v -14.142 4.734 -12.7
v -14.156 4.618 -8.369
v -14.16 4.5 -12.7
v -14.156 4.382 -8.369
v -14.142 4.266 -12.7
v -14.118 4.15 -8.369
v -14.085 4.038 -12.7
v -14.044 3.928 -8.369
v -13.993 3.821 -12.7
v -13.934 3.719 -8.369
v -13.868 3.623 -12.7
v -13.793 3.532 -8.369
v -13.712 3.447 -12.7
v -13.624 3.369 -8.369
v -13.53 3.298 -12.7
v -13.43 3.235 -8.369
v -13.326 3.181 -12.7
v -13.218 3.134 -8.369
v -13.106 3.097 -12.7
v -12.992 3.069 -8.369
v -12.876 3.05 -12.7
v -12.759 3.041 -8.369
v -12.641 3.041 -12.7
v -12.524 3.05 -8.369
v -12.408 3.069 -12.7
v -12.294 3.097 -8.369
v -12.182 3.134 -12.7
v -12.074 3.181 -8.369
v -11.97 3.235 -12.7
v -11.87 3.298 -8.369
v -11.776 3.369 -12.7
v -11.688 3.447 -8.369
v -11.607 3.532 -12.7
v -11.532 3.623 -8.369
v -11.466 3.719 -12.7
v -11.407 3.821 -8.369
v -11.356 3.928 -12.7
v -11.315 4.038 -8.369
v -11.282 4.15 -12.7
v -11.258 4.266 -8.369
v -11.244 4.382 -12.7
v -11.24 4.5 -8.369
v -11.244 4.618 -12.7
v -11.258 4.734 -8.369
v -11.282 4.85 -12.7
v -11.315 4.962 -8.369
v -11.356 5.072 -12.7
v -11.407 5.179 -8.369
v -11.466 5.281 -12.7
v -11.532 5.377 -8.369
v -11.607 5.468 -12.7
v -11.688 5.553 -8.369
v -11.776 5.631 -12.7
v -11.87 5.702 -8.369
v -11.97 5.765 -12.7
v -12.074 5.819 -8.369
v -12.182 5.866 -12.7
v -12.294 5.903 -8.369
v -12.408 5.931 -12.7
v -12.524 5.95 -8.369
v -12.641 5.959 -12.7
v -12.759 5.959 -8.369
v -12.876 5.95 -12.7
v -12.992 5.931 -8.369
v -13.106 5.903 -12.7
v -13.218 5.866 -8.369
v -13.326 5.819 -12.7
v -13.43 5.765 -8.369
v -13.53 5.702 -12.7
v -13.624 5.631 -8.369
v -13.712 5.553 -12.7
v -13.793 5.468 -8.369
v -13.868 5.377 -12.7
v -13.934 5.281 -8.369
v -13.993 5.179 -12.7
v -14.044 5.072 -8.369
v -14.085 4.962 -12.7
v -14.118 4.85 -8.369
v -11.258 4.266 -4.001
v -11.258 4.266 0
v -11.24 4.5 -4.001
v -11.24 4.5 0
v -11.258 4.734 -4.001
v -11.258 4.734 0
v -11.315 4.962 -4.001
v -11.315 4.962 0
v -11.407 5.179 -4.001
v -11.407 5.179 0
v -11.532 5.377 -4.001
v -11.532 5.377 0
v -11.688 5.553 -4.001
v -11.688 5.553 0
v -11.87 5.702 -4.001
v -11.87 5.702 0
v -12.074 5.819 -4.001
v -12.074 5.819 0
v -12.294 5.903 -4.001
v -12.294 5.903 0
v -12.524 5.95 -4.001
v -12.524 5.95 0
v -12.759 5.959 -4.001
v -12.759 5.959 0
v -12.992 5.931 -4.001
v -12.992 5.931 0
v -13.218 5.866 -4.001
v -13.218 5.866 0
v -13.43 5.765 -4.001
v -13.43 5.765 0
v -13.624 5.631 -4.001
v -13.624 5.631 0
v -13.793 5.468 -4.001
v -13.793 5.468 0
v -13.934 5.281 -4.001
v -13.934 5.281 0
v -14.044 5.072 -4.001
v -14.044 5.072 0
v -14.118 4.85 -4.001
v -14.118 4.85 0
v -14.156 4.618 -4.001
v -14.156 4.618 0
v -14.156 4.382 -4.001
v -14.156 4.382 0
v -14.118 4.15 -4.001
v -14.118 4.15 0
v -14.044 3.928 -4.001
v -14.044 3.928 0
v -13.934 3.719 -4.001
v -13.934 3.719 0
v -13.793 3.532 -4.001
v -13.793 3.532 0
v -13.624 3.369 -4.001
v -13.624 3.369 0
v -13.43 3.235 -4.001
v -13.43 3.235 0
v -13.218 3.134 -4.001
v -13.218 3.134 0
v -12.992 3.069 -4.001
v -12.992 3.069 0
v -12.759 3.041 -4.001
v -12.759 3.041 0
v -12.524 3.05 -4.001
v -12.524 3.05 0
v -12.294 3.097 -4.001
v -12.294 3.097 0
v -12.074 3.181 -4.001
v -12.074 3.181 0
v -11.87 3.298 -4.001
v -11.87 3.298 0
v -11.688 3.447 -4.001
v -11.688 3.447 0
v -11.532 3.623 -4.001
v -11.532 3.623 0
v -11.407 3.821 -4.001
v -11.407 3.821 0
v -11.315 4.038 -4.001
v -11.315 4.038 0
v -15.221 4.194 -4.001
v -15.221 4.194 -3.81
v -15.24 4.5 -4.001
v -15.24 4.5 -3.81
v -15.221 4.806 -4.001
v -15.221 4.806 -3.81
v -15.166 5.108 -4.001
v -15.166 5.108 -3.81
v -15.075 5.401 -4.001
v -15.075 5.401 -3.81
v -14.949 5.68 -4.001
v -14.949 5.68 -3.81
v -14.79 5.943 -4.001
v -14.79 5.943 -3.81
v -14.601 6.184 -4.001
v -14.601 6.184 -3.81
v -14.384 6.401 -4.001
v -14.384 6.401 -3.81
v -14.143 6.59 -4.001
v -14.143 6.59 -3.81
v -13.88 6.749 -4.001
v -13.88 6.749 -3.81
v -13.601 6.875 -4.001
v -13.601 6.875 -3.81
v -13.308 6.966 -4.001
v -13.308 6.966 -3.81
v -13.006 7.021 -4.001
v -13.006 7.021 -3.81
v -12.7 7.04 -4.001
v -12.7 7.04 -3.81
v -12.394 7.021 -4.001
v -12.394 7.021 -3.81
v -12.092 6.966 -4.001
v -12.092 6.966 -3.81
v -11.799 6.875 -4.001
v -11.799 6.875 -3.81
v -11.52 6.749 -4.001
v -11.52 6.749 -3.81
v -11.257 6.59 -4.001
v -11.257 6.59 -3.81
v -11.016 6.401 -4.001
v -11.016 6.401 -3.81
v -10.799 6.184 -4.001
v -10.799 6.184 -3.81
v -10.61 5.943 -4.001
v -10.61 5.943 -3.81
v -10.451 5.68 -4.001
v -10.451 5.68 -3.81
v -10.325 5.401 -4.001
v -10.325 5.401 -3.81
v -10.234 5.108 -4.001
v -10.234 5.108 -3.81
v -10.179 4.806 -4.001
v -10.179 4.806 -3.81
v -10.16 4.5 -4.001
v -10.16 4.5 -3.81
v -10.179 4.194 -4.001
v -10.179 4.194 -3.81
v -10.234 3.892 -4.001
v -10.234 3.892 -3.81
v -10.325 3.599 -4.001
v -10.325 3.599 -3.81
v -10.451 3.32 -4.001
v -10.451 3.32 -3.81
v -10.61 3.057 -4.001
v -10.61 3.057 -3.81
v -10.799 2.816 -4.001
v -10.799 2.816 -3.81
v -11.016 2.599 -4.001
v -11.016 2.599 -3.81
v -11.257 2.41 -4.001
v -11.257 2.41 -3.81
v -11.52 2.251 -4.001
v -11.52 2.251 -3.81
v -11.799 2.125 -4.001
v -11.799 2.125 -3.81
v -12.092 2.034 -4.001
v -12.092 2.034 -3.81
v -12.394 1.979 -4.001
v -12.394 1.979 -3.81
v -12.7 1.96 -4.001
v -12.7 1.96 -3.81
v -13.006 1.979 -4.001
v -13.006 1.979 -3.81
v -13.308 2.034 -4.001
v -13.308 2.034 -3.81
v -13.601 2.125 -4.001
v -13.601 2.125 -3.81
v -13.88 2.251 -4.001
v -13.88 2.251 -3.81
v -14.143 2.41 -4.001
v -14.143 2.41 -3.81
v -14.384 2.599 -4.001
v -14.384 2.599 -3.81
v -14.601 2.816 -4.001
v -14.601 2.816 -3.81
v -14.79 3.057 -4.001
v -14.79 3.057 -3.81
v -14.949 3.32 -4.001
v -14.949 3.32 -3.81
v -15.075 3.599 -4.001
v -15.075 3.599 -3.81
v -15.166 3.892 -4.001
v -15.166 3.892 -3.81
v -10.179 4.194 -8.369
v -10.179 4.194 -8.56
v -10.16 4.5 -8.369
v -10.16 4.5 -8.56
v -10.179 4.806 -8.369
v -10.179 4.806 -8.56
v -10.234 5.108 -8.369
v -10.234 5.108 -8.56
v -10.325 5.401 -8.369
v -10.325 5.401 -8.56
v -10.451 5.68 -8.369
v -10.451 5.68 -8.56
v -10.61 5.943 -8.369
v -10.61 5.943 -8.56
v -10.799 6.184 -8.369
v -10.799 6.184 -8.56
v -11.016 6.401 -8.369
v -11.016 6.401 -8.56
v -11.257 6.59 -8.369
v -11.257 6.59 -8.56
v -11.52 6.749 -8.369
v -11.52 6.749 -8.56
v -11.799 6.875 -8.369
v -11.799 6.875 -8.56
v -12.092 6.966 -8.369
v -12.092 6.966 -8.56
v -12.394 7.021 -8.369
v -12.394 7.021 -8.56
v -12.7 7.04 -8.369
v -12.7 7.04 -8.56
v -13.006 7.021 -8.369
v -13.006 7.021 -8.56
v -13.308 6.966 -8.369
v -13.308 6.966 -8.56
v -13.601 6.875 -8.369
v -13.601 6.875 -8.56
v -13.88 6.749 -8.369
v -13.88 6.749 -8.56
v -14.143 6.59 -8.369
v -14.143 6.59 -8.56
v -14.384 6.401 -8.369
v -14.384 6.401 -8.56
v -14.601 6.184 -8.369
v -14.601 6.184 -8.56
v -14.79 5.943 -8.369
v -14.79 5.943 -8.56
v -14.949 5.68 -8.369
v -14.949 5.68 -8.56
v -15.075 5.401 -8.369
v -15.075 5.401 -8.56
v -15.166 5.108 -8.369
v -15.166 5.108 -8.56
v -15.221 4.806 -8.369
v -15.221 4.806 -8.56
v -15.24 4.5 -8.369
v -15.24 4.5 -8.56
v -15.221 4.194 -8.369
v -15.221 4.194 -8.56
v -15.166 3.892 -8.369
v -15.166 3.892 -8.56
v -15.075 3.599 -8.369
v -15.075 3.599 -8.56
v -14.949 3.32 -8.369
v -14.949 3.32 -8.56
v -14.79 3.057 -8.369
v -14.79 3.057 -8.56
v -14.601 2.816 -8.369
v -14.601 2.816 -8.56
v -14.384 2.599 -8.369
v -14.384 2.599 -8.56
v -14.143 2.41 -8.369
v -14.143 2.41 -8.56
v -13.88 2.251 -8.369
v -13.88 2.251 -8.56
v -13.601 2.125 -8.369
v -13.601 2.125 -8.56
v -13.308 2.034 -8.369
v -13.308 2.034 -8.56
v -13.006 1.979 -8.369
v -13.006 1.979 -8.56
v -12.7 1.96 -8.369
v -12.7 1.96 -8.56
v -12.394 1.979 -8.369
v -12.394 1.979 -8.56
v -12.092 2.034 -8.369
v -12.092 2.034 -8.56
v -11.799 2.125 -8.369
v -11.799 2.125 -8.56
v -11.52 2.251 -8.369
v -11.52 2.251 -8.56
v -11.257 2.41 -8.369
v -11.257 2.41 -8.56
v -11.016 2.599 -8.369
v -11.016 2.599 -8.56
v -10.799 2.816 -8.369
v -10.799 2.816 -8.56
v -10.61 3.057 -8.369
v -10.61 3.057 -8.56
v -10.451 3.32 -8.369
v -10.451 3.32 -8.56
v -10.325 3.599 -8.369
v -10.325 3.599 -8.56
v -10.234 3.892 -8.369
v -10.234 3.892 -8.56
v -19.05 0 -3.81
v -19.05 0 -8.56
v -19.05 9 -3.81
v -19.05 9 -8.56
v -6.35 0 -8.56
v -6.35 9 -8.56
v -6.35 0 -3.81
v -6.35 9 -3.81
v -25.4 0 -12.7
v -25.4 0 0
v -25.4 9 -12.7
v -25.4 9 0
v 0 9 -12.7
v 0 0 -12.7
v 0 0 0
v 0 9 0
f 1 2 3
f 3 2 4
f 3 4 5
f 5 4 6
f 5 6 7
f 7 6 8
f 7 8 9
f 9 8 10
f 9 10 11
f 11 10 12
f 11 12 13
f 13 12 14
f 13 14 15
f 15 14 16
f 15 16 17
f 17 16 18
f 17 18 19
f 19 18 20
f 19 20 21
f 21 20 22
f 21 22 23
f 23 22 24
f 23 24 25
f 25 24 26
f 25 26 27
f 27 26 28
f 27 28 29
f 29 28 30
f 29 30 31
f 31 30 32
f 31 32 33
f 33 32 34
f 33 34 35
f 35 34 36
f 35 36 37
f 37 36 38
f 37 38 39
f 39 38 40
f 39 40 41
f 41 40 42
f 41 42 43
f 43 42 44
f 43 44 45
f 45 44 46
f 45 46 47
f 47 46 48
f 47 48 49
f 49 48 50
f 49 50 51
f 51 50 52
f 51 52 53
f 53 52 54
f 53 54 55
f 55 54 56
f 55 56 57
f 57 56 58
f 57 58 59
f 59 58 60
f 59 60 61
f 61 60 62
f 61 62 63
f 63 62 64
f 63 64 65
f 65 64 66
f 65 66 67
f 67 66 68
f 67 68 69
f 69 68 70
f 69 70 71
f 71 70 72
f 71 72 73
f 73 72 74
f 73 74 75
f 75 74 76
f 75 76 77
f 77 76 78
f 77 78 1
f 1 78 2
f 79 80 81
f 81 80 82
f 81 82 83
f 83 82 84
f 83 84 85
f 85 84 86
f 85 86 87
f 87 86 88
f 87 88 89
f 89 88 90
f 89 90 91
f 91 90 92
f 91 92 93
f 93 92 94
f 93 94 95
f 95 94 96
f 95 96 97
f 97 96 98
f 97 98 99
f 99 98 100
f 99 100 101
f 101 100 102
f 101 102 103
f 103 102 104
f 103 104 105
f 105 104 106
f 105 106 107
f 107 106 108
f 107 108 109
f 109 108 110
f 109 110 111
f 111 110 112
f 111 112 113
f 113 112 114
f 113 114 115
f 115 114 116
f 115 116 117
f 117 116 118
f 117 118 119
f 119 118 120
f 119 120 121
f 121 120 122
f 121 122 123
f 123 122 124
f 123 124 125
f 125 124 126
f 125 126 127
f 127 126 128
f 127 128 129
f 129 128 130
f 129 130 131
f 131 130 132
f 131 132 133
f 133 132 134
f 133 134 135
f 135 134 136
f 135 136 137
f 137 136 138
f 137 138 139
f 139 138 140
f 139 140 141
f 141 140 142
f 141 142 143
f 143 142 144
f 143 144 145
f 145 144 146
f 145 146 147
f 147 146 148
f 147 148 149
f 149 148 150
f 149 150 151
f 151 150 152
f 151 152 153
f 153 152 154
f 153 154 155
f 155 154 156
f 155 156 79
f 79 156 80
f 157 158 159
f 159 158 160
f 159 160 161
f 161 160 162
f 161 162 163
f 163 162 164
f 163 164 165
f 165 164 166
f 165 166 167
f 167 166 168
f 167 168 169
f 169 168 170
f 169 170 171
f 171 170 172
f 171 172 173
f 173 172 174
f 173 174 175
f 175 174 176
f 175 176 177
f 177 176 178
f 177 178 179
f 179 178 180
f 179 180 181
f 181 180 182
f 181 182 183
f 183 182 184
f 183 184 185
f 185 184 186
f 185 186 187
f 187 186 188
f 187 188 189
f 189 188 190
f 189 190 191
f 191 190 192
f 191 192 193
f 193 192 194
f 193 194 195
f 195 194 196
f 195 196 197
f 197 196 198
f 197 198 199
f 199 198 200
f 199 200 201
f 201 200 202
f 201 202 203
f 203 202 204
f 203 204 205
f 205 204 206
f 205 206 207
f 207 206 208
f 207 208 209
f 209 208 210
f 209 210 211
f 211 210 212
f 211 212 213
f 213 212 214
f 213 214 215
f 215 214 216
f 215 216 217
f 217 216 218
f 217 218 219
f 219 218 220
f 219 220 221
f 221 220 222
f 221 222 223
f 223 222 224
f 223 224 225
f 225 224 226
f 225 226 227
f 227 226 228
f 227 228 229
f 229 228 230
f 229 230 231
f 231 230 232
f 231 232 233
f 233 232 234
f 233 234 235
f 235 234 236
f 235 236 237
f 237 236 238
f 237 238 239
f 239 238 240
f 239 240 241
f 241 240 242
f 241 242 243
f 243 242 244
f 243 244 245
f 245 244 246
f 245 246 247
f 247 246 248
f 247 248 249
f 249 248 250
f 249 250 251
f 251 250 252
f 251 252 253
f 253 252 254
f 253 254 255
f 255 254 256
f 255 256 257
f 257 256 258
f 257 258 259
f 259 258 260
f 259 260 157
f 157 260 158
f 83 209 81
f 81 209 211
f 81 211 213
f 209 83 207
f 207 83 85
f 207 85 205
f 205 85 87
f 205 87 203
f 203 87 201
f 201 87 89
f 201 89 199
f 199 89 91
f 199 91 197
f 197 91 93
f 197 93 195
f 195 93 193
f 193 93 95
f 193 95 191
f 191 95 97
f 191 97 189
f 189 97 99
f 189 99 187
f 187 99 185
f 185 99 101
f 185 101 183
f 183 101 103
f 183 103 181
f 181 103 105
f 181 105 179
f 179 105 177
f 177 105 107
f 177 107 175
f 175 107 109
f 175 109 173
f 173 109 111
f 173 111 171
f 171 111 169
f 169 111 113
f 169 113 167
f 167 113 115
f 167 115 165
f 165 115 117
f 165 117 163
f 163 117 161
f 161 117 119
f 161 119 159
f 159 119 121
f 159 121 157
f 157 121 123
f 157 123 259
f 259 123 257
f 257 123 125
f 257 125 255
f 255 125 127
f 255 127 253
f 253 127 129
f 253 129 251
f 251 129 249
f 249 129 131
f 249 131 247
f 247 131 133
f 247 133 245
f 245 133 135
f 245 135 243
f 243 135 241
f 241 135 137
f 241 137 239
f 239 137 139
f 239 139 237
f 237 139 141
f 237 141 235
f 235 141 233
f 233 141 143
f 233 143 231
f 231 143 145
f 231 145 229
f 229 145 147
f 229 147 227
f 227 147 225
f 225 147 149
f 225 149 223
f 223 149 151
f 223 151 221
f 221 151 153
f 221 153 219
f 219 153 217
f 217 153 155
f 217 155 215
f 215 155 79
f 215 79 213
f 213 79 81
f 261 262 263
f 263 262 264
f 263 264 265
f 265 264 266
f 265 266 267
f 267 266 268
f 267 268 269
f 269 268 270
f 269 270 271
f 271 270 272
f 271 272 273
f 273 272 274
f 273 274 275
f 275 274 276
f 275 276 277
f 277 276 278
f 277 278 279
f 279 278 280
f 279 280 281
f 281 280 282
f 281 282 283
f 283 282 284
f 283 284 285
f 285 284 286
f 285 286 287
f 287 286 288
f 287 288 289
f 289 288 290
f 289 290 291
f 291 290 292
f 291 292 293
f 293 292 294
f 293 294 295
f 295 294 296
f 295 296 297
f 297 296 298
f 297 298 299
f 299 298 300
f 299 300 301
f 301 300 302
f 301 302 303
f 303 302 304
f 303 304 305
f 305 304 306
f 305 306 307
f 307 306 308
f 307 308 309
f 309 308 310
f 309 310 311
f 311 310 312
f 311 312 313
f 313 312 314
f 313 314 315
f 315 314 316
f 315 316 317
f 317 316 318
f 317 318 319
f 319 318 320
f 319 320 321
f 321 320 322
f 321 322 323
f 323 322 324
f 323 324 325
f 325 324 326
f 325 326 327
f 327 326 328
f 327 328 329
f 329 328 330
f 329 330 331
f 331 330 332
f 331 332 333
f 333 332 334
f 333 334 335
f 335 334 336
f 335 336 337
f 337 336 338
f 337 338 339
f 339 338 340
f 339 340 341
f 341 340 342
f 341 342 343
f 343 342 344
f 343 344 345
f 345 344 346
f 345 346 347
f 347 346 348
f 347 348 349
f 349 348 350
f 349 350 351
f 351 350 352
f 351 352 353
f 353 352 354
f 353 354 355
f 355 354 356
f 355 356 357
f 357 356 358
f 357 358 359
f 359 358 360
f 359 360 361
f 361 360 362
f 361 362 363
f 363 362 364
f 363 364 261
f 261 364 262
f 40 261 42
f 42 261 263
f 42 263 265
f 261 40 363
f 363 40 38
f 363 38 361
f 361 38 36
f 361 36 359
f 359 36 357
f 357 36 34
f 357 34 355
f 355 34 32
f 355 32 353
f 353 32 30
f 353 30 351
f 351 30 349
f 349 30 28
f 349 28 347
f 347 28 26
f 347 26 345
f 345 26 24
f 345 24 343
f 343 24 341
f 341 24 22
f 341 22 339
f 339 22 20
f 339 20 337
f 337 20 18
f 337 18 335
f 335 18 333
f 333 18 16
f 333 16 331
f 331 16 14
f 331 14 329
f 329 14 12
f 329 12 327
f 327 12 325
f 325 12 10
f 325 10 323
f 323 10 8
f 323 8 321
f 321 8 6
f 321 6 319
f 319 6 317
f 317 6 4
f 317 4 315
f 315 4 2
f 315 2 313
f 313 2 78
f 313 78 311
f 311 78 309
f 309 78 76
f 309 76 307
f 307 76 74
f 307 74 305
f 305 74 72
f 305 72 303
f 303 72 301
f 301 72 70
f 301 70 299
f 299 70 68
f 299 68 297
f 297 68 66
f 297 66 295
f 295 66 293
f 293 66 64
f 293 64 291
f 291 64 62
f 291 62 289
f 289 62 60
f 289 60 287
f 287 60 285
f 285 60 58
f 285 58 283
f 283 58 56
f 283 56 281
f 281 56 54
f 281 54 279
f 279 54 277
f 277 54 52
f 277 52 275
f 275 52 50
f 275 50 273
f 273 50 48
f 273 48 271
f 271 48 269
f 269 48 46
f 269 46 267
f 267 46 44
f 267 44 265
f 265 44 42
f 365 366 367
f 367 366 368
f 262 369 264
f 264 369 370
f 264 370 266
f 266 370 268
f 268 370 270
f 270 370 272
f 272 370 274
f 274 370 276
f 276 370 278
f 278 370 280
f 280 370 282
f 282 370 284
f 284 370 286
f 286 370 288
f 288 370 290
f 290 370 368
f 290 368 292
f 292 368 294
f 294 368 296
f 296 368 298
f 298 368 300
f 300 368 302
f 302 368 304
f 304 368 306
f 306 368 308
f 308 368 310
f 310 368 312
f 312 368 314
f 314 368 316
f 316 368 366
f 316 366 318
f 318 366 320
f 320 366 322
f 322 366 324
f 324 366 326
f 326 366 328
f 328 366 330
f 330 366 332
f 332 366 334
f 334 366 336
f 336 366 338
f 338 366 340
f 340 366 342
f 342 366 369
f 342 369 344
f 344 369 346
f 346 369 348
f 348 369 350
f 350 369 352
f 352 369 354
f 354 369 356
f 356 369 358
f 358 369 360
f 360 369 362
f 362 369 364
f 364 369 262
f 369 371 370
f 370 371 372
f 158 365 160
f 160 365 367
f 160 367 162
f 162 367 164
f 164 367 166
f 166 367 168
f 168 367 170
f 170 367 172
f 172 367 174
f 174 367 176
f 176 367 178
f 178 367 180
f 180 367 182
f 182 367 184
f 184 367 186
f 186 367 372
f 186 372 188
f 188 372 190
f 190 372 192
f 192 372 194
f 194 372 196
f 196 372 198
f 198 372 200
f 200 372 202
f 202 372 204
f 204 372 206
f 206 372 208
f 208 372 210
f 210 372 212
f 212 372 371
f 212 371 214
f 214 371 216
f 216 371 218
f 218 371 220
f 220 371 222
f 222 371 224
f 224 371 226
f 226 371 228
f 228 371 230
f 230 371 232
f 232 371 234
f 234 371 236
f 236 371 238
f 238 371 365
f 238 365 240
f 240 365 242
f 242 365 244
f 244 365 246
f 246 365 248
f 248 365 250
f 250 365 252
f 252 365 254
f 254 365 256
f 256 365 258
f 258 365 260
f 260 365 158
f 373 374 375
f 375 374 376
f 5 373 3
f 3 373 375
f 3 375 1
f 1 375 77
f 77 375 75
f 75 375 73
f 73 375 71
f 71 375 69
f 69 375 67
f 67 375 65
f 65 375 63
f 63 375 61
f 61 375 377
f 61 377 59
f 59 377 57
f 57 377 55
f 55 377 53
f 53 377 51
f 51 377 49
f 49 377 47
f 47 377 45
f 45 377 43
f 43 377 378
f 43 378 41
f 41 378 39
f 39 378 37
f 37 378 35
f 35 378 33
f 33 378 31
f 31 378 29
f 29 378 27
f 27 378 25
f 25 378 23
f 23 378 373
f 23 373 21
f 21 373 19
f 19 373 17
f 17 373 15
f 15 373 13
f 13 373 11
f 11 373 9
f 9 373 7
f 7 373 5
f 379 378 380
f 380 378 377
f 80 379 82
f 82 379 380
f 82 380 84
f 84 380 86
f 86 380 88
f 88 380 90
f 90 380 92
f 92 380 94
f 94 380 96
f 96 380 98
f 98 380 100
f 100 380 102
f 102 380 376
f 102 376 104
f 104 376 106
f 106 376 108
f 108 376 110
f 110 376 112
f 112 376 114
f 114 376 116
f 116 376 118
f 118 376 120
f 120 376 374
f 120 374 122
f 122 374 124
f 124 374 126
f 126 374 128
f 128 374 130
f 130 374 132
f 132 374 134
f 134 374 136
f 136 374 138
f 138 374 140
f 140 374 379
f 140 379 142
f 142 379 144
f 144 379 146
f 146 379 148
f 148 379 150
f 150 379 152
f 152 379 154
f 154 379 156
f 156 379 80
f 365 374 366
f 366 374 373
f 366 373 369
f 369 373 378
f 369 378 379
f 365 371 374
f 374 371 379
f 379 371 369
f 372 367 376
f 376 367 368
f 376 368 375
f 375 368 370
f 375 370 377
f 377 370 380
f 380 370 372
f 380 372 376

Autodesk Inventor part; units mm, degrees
ref_plane "YZ Plane" through (0, 0, 0) normal (1, 0, 0) x (0, 1, 0)
ref_plane "XZ Plane" through (0, 0, 0) normal (0, 1, 0) x (-1, 0, 0)
ref_plane "XY Plane" through (0, 0, 0) normal (0, 0, 1) x (1, 0, 0)
sketch "Sketch1" plane through (0, 0, 0) normal (0, 1, 0) x (-1, 0, 0)
  line L0 (0, 0) -> (25.4, 0)
  line L1 (25.4, 0) -> (25.4, -12.7)
  line L2 (25.4, -12.7) -> (0, -12.7)
  line L3 (0, -12.7) -> (0, 0)
  line L4 (6.35, -3.81) -> (19.05, -3.81)
  line L5 (19.05, -3.81) -> (19.05, -8.5598)
  line L6 (19.05, -8.5598) -> (6.35, -8.5598)
  line L7 (6.35, -8.5598) -> (6.35, -3.81)
  dimension "d0" = 25.4
  dimension "d1" = 12.7
  dimension "d2" = 12.7
  dimension "d3" = 4.7498
  dimension "d5" = 6.35
  dimension "d6" = 3.81
extrude "Extrusion1" add sketch "Sketch1" along normal blind 9
sketch "Sketch2" plane through (-19.05, 0, -8.5598) normal (0, 0, 1) x (1, 0, 0)
  circle A0 centre (6.35, 4.5) radius 2.54
  line L0 (12.7, 0) -> (12.7, 9) projected
  point P0 (19.05, 0)
  dimension "d9" = 5.08
  dimension "d10" = 4.5
  dimension "d11" = 6.35
extrude "Extrusion2" add sketch "Sketch2" along normal blind 0.1905
sketch "Sketch3" plane through (-6.35, 0, -3.81) normal (0, 0, -1) x (-1, 0, 0)
  circle A0 centre (6.35, 4.5) radius 2.54
  line L0 (0, 0) -> (0, 9) projected
  point P0 (-6.35, 0)
  dimension "d14" = 5.08
  dimension "d15" = 4.5
  dimension "d16" = 6.35
extrude "Extrusion3" add sketch "Sketch3" along normal blind 0.1905
sketch "Sketch4" plane through (0, 0, -12.7) normal (0, 0, -1) x (-1, 0, 0)
  circle A0 centre (12.7, 4.5) radius 1.4605
  line L0 (0, 0) -> (0, 9) projected
  line L1 (25.4, 0) -> (0, 0) projected
  dimension "d19" = 2.921
  dimension "d20" = 12.7
  dimension "d21" = 4.5
hole "Hole1" at (-12.7, 4.5, -12.7) direction (0, 0, 1) diameter 2.921 end through all
properties part number "pulley enclosure test"
